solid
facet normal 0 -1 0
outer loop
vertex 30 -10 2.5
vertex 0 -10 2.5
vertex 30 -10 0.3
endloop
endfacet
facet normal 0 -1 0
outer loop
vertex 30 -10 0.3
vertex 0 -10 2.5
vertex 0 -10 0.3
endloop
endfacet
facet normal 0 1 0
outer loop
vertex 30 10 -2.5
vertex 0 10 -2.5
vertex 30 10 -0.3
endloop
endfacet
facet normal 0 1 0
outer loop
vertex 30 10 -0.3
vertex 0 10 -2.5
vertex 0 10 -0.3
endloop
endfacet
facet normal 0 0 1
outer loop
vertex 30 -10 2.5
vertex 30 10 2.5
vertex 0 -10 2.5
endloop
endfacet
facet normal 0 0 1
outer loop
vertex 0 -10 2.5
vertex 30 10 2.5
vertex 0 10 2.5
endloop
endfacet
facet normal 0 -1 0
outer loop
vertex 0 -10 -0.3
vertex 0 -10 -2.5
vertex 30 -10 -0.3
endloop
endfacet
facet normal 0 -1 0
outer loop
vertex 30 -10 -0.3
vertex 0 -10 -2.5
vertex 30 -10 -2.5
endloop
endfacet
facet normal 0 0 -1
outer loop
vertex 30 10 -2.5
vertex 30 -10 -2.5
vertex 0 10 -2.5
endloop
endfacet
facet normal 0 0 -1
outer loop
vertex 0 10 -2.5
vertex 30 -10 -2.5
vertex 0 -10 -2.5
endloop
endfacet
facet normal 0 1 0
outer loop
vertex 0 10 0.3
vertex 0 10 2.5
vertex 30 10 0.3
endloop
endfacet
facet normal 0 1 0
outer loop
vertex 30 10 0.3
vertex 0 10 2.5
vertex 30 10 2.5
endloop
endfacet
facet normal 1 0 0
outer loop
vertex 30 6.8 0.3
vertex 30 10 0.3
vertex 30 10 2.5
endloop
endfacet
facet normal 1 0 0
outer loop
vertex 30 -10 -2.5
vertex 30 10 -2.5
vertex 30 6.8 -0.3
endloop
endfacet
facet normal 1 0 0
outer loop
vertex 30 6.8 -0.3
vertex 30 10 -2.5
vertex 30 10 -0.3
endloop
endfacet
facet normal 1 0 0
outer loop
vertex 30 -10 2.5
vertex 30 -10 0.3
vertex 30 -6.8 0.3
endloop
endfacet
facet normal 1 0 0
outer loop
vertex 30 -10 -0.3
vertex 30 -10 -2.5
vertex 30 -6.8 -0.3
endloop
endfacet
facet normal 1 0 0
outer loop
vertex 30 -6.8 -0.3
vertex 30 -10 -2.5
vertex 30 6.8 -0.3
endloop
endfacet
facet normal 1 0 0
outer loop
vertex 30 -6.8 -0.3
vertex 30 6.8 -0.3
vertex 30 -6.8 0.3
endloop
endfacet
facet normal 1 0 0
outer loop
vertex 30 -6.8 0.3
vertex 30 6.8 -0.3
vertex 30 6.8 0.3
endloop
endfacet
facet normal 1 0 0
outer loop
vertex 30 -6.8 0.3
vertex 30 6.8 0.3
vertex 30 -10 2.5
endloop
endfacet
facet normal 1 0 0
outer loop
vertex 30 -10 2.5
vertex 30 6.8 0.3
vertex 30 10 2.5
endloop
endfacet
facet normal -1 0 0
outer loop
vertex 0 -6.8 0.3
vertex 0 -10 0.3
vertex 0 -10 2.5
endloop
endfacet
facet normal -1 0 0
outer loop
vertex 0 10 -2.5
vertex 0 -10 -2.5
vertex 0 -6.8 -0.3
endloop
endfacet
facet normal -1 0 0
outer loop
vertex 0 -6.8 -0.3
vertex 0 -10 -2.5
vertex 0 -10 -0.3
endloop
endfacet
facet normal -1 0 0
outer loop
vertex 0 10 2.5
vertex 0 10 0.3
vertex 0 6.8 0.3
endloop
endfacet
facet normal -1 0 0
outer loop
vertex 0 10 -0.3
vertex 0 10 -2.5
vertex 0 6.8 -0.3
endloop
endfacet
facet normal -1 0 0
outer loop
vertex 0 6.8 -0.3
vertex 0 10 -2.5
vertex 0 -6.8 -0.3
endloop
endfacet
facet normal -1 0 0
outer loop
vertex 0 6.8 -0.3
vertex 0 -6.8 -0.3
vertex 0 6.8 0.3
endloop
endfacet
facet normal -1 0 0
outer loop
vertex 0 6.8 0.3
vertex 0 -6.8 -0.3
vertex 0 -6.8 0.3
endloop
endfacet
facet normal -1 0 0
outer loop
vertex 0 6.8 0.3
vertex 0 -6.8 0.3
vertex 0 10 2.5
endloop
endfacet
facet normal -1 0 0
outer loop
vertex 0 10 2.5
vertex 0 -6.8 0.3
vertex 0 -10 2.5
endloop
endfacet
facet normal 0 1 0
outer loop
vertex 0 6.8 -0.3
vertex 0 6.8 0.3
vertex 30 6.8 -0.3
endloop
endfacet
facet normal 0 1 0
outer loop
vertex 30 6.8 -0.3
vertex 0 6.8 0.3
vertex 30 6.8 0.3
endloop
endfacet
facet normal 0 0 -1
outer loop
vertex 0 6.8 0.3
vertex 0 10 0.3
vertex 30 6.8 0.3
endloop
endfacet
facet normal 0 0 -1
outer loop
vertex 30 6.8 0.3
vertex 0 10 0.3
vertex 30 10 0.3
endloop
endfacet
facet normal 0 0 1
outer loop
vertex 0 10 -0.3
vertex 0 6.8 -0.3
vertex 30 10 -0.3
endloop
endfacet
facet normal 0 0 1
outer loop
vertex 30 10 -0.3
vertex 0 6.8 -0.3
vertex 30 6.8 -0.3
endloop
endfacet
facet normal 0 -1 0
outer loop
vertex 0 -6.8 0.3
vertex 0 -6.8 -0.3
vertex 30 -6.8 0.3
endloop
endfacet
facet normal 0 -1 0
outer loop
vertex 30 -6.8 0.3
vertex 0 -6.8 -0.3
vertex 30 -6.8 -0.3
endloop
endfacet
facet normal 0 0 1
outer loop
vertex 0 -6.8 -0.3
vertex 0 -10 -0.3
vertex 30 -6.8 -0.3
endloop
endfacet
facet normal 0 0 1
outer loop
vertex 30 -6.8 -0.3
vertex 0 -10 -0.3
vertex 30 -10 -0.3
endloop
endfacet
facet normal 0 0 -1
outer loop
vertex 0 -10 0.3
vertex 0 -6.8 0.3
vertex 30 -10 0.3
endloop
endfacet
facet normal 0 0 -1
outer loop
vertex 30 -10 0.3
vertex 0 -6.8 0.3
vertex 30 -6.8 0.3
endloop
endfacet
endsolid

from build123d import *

# Parameters (mm, degrees)
SKETCH4_W           = 5
SKETCH4_H           = 20
BOSS_EXTRUDE2_DEPTH = 30
CUT_EXTRUDE3_DEPTH  = 31


with BuildPart() as part:
    # Sketch4 → Boss-Extrude2 (new body)
    with BuildSketch(Plane(origin=(0, 0, 0), x_dir=(0, 0, -1), z_dir=(1, 0, 0))):
        Rectangle(SKETCH4_W, SKETCH4_H)
    extrude(amount=BOSS_EXTRUDE2_DEPTH)

    # Sketch5 → Cut-Extrude3 (cut, through all)
    with BuildSketch(Plane(origin=(30, 0, 0), x_dir=(0, 0, -1), z_dir=(1, 0, 0))):
        Polygon((0.3, 6.8), (0.3, 10), (0, 10), (-0.3, 10), (-0.3, 6.8), align=None)
    cut_extrude3 = extrude(amount=-CUT_EXTRUDE3_DEPTH, mode=Mode.SUBTRACT)

    # Mirror3: Cut-Extrude3 across plane
    add(cut_extrude3.mirror(Plane.ZX), mode=Mode.SUBTRACT)


solid = part.part
